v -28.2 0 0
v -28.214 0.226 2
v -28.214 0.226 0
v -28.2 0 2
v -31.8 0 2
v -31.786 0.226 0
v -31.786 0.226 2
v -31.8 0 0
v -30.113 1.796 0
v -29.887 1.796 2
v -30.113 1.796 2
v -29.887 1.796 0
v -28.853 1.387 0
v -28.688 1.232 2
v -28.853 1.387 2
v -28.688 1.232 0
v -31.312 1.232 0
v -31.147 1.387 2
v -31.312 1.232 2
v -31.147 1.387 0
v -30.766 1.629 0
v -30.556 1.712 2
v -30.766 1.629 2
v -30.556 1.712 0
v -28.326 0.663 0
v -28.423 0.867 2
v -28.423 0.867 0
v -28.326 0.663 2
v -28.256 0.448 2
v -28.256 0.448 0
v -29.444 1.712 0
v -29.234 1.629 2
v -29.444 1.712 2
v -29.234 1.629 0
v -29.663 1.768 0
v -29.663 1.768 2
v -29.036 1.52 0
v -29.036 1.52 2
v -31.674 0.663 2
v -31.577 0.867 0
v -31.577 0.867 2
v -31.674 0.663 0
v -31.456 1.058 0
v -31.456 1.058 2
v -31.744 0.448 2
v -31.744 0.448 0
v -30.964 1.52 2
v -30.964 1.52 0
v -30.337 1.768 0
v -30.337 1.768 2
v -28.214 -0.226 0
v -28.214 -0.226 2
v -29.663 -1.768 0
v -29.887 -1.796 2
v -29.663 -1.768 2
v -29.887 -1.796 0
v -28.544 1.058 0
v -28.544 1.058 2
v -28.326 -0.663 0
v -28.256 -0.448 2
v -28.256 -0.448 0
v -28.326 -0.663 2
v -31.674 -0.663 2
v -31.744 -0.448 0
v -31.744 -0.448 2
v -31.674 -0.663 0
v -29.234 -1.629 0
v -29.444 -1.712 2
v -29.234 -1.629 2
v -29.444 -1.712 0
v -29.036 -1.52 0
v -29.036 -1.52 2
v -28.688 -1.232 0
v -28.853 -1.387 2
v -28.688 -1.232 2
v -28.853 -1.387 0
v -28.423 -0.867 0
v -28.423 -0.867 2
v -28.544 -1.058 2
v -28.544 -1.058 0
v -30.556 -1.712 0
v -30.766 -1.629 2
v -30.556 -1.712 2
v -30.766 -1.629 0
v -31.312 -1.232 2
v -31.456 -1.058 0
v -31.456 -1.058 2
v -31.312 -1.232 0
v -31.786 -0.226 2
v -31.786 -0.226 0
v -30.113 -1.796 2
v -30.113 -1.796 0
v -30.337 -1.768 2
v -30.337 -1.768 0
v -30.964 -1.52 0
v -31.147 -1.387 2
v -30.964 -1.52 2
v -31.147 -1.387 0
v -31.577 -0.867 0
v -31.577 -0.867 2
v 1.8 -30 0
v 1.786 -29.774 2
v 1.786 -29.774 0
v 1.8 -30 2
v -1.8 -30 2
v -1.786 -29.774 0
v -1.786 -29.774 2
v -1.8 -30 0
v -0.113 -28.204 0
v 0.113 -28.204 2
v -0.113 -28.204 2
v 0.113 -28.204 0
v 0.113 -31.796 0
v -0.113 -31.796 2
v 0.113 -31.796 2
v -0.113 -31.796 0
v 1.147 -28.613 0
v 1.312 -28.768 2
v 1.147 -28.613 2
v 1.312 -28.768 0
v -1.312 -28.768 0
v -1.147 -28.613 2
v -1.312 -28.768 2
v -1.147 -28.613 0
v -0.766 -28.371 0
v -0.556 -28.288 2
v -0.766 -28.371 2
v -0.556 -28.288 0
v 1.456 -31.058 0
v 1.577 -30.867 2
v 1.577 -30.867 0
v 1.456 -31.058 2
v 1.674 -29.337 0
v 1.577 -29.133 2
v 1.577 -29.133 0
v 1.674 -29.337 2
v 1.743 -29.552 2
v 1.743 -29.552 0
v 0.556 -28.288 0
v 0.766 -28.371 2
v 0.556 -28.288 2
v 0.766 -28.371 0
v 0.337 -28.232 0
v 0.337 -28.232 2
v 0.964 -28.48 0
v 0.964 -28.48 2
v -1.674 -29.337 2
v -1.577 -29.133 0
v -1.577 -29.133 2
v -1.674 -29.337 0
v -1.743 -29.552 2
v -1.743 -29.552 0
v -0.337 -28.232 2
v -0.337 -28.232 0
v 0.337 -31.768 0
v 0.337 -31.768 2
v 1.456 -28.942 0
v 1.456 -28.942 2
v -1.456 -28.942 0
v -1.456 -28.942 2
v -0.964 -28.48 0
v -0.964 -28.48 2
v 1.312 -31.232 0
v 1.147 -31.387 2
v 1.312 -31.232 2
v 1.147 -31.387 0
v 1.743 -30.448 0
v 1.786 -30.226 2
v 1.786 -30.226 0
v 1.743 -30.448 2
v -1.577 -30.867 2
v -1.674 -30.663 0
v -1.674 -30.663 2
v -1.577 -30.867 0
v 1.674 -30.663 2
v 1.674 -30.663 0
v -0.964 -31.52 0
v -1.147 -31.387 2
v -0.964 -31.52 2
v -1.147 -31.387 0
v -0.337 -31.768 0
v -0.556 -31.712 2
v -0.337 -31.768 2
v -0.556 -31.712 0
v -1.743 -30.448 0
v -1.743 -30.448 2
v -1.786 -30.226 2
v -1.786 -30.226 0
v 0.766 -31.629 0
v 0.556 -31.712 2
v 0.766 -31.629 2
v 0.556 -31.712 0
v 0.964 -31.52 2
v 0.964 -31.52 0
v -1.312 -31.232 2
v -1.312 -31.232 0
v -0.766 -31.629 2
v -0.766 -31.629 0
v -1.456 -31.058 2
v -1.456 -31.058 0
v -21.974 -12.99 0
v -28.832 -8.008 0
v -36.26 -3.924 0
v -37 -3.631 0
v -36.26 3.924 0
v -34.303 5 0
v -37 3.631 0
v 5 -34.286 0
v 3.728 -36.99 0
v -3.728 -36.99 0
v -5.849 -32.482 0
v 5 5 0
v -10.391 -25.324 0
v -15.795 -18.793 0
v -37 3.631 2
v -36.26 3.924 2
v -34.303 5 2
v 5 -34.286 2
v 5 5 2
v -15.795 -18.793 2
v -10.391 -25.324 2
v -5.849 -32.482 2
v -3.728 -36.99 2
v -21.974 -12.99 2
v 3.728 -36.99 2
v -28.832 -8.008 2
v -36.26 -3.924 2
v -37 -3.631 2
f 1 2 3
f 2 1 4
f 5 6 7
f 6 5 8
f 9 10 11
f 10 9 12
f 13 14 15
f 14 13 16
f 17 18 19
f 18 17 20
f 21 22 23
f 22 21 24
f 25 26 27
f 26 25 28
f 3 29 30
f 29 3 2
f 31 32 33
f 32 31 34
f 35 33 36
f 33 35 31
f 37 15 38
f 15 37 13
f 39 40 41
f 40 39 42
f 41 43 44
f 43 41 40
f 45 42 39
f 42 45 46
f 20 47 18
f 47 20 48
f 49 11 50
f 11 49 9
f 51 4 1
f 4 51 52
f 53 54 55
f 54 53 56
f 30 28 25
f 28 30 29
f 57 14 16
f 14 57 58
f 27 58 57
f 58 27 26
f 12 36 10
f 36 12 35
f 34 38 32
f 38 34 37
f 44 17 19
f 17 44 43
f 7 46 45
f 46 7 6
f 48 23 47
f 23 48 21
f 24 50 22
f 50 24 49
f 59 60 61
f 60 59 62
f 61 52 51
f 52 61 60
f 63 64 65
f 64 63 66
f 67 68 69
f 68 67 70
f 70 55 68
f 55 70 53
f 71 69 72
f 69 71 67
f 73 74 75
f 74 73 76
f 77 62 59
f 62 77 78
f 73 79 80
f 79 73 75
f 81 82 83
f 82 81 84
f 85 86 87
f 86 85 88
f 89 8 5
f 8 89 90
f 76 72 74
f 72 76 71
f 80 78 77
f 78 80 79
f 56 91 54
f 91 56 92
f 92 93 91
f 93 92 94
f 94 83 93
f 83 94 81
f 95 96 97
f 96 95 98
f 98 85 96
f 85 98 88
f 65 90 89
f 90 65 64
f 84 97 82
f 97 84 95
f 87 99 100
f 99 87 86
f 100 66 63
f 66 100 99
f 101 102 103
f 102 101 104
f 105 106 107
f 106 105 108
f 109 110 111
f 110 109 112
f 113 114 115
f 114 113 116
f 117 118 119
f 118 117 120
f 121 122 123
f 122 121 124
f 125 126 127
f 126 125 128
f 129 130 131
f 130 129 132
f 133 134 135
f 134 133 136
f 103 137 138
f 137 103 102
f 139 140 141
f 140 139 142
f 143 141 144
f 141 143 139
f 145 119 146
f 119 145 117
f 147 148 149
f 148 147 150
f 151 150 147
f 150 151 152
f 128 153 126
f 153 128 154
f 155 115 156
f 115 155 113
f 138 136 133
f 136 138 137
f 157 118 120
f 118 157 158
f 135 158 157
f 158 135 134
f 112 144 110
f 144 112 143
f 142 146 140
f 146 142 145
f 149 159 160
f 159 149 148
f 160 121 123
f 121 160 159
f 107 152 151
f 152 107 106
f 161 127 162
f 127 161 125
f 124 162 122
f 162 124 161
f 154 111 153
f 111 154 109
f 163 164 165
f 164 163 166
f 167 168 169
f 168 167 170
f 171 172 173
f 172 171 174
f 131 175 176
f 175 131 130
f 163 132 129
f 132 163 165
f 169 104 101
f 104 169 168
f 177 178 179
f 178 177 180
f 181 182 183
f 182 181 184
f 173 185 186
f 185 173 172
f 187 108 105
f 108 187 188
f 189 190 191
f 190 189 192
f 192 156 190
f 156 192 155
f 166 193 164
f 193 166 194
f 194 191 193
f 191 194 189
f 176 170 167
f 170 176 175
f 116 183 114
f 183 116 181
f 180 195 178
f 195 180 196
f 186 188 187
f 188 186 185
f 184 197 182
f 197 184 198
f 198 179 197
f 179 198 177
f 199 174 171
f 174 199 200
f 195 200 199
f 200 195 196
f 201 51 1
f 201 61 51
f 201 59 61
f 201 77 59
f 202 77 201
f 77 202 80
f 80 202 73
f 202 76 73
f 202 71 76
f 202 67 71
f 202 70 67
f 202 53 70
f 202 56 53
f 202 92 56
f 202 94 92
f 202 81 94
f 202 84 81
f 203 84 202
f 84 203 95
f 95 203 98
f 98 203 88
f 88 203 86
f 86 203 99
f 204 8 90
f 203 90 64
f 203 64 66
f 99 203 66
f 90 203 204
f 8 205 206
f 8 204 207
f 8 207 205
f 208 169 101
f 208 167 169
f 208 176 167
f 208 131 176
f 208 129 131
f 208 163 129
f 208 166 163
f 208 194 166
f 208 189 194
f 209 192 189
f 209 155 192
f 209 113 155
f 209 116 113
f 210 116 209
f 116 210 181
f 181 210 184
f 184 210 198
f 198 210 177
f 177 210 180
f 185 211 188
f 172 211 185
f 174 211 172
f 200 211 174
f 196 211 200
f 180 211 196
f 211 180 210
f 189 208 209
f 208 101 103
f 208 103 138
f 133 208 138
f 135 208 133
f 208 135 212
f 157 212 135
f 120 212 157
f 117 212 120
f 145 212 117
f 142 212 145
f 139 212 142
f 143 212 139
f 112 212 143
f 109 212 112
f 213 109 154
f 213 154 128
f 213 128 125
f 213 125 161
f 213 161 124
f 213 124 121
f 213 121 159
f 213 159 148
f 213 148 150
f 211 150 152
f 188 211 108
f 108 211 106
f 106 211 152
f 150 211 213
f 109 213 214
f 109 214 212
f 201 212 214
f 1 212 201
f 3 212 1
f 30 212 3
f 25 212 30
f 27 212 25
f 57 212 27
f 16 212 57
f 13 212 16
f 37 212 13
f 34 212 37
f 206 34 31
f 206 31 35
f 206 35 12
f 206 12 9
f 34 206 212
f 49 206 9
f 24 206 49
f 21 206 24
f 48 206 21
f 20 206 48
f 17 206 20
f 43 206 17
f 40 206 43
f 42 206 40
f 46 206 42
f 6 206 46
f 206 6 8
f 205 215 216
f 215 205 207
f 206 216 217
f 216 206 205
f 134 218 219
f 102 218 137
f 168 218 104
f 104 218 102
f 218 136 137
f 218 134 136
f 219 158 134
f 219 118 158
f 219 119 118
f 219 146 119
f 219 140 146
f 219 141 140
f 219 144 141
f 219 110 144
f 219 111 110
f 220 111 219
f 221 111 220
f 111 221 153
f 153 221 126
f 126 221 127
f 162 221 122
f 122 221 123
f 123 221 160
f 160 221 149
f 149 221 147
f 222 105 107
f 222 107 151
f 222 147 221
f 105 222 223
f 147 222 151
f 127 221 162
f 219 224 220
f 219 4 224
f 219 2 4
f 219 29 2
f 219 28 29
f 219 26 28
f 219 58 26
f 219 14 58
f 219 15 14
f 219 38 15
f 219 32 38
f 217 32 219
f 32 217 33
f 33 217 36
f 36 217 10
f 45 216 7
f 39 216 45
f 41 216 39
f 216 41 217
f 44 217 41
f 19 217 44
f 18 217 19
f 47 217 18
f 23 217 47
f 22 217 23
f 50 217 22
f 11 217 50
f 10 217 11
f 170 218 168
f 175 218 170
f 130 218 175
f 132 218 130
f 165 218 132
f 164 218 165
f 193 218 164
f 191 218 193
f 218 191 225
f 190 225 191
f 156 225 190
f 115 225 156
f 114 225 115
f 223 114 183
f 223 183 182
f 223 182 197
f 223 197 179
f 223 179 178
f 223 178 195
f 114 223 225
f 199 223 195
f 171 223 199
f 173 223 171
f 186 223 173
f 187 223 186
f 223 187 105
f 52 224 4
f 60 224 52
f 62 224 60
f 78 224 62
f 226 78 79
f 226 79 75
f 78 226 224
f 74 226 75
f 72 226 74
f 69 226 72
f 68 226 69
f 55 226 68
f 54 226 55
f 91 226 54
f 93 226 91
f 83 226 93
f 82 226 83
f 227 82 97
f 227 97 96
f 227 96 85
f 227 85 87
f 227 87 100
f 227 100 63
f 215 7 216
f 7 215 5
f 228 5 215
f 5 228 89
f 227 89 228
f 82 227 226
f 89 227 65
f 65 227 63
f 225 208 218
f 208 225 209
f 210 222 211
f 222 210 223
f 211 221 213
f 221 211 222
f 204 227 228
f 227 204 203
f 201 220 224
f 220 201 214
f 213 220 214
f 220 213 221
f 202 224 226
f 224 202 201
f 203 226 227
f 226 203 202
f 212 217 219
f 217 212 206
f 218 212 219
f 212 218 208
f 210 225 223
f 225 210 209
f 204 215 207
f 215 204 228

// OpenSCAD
$fn = 50;


difference() {
	union() {
		hull() {
			translate(v = [-32.0000000000, 32.0000000000, 0]) {
				cylinder(h = 2, r = 5);
			}
			translate(v = [32.0000000000, 32.0000000000, 0]) {
				cylinder(h = 2, r = 5);
			}
			translate(v = [-32.0000000000, -32.0000000000, 0]) {
				cylinder(h = 2, r = 5);
			}
			translate(v = [32.0000000000, -32.0000000000, 0]) {
				cylinder(h = 2, r = 5);
			}
		}
	}
	union() {
		translate(v = [30, 0, -100.0000000000]) {
			cylinder(h = 200, r = 1.8000000000);
		}
		translate(v = [-30, 0, -100.0000000000]) {
			cylinder(h = 200, r = 1.8000000000);
		}
		translate(v = [0, -30, -100.0000000000]) {
			cylinder(h = 200, r = 1.8000000000);
		}
		translate(v = [0, 30, -100.0000000000]) {
			cylinder(h = 200, r = 1.8000000000);
		}
		translate(v = [65, 65, 0.0000000000]) {
			cylinder(h = 2, r = 67.5000000000);
		}
		translate(v = [-65, 65, 0.0000000000]) {
			cylinder(h = 2, r = 67.5000000000);
		}
		translate(v = [65, -65, 0.0000000000]) {
			cylinder(h = 2, r = 67.5000000000);
		}
		translate(v = [-65, -65, 0.0000000000]) {
			cylinder(h = 2, r = 67.5000000000);
		}
		translate(v = [-250, 5, -250]) {
			cube(size = [500, 500, 500]);
		}
		translate(v = [-250, 5, -250]) {
			cube(size = [500, 500, 500]);
		}
		translate(v = [-250, 5, -250]) {
			cube(size = [500, 500, 500]);
		}
		translate(v = [5, -250, -250]) {
			cube(size = [500, 500, 500]);
		}
		translate(v = [5, -250, -250]) {
			cube(size = [500, 500, 500]);
		}
		translate(v = [5, -250, -250]) {
			cube(size = [500, 500, 500]);
		}
	}
}
